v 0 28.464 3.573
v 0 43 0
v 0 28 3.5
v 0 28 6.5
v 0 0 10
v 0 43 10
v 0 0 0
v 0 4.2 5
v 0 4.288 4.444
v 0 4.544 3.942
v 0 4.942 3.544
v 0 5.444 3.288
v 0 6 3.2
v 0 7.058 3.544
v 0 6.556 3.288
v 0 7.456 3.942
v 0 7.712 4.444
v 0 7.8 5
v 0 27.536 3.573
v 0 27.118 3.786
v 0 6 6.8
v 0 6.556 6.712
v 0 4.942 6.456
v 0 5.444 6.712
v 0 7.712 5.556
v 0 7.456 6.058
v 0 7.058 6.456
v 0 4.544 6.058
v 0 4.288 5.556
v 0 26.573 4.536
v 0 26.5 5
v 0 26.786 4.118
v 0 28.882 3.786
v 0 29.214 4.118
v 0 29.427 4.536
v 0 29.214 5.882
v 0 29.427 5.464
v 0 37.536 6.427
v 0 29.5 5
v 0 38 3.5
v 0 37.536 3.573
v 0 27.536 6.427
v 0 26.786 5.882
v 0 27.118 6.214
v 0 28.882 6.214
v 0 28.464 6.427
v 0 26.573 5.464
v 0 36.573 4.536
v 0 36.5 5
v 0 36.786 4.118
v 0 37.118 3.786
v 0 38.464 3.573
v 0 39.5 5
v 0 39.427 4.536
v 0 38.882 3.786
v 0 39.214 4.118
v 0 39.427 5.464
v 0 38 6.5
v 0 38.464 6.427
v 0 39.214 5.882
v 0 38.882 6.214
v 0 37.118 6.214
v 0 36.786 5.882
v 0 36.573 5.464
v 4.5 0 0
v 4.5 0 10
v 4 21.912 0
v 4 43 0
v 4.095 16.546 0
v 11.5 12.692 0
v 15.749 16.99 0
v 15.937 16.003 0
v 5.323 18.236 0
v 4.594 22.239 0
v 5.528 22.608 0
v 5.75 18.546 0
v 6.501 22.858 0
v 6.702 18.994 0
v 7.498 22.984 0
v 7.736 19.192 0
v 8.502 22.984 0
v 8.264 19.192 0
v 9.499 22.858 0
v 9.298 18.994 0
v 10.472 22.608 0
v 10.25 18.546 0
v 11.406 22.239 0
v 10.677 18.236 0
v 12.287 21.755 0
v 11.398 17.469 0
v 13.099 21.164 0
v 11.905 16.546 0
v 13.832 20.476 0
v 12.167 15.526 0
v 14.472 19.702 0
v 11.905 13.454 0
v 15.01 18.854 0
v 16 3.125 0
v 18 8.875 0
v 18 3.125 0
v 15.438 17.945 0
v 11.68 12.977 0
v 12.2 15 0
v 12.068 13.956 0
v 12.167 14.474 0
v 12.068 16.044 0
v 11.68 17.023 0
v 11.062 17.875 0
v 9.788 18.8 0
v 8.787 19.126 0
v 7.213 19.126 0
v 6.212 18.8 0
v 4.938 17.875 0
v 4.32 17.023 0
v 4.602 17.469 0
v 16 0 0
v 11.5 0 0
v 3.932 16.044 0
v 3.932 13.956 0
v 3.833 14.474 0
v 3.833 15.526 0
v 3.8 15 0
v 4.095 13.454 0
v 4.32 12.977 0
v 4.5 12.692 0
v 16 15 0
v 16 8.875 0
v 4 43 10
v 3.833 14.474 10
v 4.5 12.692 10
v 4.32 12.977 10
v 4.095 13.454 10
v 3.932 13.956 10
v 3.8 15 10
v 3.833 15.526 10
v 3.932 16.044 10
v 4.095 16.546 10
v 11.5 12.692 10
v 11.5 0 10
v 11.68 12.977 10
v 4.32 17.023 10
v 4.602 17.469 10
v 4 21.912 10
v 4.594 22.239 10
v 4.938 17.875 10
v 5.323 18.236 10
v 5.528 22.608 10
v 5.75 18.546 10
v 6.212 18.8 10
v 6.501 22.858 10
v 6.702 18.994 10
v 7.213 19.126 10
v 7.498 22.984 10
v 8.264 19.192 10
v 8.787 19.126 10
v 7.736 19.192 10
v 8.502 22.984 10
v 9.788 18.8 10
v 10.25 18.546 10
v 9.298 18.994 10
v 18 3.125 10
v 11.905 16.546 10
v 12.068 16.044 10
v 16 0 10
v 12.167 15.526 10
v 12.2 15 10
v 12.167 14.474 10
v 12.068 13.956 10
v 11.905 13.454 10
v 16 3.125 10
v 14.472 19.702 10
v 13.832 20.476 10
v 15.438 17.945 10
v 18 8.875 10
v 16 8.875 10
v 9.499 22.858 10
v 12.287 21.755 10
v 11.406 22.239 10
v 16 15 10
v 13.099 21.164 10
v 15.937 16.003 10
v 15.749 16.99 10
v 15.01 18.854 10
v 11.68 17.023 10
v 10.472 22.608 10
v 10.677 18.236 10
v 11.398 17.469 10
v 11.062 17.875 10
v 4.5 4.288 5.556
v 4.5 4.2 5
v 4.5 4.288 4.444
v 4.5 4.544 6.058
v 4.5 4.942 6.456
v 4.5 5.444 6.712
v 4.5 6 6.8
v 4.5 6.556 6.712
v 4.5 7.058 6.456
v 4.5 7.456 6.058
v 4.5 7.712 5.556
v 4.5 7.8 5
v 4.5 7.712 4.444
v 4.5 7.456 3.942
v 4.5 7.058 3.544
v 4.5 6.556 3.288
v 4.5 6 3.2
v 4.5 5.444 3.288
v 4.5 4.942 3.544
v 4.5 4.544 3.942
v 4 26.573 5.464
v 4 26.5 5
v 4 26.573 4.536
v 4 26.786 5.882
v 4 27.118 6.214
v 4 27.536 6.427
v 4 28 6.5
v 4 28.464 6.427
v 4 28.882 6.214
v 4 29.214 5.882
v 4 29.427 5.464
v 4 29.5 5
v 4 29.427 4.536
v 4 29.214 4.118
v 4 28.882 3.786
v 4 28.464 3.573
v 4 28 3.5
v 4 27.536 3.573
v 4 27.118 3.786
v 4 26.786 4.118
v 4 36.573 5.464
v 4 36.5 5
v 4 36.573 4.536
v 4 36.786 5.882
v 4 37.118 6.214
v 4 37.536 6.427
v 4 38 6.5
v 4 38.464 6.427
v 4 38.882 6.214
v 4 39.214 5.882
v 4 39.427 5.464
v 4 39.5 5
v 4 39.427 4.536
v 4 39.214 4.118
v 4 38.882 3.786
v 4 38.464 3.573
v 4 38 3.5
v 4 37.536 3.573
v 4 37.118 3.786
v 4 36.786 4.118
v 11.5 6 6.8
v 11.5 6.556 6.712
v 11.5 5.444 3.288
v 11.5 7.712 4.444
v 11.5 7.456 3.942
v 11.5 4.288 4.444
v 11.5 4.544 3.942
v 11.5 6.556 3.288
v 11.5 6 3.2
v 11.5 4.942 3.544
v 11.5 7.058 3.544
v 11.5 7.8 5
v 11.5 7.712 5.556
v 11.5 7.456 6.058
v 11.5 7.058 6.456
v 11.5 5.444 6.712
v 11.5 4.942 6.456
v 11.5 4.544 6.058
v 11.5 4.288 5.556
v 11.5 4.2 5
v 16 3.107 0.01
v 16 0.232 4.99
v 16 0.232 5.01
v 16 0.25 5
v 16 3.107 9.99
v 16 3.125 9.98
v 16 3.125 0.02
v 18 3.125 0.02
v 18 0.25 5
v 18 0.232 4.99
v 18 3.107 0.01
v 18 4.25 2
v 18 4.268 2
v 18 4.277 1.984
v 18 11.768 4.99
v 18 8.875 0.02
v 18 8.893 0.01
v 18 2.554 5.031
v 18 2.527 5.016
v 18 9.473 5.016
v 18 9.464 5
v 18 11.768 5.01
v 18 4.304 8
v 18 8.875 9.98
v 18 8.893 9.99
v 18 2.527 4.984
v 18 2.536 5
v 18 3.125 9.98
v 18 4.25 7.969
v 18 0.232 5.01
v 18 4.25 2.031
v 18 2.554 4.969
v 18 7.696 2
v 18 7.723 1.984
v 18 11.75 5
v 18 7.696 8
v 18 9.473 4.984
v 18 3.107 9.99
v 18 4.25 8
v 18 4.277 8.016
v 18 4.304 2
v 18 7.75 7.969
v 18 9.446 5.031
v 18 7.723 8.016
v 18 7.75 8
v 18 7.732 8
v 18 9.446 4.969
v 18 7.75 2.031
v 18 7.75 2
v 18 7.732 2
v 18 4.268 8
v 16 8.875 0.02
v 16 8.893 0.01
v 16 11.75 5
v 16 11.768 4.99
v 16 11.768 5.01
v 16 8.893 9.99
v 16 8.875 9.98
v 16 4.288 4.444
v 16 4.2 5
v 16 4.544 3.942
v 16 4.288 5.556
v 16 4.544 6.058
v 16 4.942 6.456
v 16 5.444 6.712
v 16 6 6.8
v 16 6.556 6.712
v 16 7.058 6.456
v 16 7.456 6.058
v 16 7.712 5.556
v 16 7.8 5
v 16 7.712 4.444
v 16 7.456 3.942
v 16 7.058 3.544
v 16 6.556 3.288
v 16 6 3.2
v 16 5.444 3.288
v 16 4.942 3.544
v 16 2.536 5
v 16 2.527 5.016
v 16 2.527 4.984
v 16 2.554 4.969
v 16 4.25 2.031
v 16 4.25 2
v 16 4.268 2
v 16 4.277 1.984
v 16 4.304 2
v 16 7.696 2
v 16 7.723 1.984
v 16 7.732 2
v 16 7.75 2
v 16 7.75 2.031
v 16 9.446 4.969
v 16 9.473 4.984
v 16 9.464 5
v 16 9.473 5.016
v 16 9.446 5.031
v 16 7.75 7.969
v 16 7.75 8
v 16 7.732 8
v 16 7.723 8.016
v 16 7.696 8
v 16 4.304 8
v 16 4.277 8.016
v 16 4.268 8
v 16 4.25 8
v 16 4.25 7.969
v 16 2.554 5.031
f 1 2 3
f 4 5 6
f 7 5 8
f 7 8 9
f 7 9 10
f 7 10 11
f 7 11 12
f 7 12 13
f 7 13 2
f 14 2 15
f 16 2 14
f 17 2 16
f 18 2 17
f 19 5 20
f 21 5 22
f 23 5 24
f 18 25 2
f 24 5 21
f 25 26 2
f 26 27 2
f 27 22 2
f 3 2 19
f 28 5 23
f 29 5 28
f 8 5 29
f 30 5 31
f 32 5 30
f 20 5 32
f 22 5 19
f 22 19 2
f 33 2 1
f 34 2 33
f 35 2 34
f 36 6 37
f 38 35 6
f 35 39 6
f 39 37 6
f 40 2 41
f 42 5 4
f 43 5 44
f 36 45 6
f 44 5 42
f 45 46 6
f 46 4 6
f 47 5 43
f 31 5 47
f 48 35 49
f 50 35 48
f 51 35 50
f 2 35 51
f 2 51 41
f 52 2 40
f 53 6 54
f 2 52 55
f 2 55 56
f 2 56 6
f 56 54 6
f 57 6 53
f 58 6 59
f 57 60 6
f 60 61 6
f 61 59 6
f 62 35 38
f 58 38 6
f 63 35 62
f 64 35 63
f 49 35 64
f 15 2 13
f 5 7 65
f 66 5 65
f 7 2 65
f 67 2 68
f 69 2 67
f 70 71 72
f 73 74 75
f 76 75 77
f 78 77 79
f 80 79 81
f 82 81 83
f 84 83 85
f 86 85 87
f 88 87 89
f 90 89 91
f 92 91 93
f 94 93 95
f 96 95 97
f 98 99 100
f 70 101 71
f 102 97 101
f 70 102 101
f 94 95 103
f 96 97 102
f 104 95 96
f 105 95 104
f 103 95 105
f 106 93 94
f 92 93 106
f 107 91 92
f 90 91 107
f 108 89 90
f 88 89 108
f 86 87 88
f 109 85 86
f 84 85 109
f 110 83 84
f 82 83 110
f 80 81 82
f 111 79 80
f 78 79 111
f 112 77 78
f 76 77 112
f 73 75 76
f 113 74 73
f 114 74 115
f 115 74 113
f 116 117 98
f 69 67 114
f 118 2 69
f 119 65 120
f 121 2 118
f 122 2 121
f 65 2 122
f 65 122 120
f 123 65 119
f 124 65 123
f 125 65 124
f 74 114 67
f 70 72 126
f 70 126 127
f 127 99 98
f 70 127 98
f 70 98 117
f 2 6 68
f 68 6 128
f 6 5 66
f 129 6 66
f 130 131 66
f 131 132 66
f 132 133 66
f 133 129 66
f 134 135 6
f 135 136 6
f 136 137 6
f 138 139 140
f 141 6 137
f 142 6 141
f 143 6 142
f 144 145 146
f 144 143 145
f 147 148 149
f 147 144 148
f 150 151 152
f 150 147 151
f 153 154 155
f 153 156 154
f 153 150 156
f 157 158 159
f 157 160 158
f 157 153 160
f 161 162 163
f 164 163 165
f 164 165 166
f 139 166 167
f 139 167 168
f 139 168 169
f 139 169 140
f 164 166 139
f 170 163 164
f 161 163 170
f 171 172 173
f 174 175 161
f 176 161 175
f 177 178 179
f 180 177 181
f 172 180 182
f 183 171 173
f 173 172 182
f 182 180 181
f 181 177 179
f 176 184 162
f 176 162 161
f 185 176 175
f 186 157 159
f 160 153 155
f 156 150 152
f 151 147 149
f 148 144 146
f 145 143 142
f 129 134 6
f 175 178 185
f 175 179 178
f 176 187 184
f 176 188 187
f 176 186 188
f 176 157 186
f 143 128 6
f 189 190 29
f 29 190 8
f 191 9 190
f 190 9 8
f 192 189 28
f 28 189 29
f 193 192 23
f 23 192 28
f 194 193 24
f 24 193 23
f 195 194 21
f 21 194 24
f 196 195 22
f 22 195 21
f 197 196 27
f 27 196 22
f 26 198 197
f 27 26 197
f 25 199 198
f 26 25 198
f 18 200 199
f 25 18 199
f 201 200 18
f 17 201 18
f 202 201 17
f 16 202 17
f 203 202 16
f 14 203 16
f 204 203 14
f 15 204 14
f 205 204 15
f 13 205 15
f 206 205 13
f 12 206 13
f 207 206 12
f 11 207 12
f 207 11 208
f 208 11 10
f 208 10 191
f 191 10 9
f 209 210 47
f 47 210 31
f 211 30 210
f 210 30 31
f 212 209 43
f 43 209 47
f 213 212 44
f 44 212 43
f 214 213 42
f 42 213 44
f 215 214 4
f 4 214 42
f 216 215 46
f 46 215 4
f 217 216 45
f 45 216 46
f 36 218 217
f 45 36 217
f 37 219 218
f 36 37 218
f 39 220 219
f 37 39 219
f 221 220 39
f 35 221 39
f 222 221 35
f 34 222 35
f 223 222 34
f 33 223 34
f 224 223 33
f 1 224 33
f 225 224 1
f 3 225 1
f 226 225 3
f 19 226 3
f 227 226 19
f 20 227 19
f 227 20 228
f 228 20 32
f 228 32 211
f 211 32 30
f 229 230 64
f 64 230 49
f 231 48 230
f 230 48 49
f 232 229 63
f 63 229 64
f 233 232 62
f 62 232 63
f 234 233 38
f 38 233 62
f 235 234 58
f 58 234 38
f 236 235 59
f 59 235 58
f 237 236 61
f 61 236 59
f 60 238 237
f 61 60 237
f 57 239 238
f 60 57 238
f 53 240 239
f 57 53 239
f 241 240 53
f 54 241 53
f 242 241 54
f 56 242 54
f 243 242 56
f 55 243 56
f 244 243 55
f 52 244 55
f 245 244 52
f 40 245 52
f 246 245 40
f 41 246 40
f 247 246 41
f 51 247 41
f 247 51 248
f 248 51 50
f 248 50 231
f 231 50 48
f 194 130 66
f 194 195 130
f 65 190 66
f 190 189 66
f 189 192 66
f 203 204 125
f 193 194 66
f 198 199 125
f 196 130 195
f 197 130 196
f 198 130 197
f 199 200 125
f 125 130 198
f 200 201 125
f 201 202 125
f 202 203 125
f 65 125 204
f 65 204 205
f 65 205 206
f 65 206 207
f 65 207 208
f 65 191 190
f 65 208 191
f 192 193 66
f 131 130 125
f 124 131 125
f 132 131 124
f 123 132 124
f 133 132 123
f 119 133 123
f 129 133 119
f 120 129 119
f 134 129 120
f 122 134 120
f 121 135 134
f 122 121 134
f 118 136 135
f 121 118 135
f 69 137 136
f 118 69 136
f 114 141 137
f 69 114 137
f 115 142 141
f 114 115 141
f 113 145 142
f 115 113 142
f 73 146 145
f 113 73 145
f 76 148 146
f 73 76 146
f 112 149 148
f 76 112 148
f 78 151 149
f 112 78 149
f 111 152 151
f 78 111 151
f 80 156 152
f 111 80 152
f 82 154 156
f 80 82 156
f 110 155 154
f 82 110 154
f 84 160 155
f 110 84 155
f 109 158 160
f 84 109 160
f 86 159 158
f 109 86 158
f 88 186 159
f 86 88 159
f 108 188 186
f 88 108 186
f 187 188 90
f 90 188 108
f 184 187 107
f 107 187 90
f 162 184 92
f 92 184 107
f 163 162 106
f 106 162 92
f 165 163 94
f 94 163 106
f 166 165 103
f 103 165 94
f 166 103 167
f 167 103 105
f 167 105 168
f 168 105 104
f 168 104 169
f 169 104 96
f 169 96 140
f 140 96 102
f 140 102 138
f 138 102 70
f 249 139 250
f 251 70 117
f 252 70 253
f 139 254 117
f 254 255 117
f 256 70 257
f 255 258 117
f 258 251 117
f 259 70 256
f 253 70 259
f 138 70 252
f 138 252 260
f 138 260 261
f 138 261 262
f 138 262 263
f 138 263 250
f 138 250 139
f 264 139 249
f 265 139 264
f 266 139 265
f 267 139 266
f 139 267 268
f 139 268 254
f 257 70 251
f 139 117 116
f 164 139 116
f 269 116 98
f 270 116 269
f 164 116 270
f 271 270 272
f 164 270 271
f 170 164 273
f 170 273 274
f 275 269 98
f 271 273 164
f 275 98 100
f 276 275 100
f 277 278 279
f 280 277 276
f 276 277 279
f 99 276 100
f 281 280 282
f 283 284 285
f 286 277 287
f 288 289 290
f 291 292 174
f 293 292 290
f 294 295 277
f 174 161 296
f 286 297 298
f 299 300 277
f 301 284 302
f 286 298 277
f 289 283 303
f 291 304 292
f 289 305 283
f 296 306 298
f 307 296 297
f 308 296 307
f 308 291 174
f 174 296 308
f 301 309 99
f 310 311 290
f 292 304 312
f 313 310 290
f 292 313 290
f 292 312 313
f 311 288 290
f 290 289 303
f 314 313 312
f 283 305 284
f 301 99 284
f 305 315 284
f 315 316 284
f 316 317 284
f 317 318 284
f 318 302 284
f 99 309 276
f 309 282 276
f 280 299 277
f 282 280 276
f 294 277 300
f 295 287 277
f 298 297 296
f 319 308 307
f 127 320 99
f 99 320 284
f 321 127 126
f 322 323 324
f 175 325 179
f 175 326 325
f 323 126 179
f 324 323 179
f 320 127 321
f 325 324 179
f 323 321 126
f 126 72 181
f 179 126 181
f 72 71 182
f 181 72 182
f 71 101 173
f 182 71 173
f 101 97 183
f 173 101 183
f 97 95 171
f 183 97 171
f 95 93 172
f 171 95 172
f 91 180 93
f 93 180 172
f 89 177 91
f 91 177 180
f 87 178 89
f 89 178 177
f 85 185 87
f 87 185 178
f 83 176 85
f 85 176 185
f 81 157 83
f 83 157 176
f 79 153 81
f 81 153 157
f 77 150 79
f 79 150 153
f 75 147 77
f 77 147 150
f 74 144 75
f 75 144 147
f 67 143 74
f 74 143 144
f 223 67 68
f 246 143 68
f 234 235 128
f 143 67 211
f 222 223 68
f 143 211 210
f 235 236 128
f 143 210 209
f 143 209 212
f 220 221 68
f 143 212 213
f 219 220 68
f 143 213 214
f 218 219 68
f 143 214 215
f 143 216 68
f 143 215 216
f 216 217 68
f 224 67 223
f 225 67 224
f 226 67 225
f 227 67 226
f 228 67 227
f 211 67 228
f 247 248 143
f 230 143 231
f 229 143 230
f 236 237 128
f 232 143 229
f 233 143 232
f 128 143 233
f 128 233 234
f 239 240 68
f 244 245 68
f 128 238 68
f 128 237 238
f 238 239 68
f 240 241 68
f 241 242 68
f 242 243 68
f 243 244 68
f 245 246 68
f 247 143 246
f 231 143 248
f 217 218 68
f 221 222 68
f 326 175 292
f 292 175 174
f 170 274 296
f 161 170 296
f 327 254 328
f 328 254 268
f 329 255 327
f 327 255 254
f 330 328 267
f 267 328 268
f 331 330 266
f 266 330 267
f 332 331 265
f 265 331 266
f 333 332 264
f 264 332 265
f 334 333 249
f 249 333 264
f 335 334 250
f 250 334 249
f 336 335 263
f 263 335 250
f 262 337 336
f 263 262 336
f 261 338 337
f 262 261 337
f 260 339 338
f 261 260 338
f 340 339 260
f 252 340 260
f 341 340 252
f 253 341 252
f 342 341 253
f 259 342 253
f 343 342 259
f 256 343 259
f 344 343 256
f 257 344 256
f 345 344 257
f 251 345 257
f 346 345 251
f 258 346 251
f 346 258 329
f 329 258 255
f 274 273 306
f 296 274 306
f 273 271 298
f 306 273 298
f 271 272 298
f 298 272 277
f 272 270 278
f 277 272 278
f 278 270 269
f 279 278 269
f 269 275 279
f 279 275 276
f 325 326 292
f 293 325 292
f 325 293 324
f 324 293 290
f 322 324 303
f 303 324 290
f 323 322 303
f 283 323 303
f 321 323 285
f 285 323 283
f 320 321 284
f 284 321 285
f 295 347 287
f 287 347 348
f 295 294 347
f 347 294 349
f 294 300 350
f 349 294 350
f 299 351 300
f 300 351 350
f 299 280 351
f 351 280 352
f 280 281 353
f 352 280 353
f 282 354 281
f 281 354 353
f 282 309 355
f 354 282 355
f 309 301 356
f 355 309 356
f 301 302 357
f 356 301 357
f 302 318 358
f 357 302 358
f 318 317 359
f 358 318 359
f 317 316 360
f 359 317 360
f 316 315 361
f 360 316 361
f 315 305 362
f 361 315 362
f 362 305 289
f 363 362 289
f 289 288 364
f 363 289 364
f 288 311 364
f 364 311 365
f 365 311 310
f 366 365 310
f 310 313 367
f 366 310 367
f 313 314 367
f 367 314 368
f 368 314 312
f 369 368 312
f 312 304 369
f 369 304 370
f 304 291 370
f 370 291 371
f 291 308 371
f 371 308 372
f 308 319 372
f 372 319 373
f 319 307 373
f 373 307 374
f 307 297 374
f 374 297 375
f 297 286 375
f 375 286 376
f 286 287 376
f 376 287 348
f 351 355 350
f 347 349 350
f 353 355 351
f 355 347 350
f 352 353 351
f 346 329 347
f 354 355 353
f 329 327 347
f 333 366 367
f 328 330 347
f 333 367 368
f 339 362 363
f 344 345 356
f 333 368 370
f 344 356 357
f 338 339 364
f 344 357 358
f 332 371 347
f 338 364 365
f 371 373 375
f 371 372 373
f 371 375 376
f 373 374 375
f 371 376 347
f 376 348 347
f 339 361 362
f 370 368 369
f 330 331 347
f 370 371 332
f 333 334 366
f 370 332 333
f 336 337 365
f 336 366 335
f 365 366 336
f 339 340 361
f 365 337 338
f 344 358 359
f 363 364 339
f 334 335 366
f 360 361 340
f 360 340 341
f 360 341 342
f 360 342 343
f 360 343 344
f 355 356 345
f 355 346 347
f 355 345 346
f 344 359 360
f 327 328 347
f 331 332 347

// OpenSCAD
difference() {
	union() {
		cube([4,43,10]);  //4,45,10
		translate([8, 15,0]) cylinder(h = 10, r = 8, $fn = 50);
		cube([16, 15,10]);
		
		translate([17,6,5]) cube([2,5.75,10], center=true);
		#translate([17,6,5]) rotate(a=[60,0,0]) cube([2,5.75,10], center=true);
		translate([17,6,5]) rotate(a=[120,0,0]) cube([2,5.75,10], center=true);
	}
	translate([8, 15,-1]) cylinder(h = 12, r = 4.2, $fn = 50);
	translate([4.5, -1, -1]) cube([7, 16,12]);
	translate([-10, 6, 5]) rotate(a=[0, 90, 0]) cylinder(h = 30, r = 1.8, $fn= 20);
	translate([-10, 28, 5]) rotate(a=[0, 90, 0]) cylinder(h = 30, r = 1.5, $fn= 20);
	translate([-10, 38, 5]) rotate(a=[0, 90, 0]) cylinder(h = 30, r = 1.5, $fn= 20);
	translate([17,6,5]) cube([2,3.5,6], center=true);
	translate([17,6,5]) rotate(a=[60,0,0]) cube([2,3.5,6], center=true);
	translate([17,6,5]) rotate(a=[120,0,0]) cube([2,3.5,6], center=true);
}
